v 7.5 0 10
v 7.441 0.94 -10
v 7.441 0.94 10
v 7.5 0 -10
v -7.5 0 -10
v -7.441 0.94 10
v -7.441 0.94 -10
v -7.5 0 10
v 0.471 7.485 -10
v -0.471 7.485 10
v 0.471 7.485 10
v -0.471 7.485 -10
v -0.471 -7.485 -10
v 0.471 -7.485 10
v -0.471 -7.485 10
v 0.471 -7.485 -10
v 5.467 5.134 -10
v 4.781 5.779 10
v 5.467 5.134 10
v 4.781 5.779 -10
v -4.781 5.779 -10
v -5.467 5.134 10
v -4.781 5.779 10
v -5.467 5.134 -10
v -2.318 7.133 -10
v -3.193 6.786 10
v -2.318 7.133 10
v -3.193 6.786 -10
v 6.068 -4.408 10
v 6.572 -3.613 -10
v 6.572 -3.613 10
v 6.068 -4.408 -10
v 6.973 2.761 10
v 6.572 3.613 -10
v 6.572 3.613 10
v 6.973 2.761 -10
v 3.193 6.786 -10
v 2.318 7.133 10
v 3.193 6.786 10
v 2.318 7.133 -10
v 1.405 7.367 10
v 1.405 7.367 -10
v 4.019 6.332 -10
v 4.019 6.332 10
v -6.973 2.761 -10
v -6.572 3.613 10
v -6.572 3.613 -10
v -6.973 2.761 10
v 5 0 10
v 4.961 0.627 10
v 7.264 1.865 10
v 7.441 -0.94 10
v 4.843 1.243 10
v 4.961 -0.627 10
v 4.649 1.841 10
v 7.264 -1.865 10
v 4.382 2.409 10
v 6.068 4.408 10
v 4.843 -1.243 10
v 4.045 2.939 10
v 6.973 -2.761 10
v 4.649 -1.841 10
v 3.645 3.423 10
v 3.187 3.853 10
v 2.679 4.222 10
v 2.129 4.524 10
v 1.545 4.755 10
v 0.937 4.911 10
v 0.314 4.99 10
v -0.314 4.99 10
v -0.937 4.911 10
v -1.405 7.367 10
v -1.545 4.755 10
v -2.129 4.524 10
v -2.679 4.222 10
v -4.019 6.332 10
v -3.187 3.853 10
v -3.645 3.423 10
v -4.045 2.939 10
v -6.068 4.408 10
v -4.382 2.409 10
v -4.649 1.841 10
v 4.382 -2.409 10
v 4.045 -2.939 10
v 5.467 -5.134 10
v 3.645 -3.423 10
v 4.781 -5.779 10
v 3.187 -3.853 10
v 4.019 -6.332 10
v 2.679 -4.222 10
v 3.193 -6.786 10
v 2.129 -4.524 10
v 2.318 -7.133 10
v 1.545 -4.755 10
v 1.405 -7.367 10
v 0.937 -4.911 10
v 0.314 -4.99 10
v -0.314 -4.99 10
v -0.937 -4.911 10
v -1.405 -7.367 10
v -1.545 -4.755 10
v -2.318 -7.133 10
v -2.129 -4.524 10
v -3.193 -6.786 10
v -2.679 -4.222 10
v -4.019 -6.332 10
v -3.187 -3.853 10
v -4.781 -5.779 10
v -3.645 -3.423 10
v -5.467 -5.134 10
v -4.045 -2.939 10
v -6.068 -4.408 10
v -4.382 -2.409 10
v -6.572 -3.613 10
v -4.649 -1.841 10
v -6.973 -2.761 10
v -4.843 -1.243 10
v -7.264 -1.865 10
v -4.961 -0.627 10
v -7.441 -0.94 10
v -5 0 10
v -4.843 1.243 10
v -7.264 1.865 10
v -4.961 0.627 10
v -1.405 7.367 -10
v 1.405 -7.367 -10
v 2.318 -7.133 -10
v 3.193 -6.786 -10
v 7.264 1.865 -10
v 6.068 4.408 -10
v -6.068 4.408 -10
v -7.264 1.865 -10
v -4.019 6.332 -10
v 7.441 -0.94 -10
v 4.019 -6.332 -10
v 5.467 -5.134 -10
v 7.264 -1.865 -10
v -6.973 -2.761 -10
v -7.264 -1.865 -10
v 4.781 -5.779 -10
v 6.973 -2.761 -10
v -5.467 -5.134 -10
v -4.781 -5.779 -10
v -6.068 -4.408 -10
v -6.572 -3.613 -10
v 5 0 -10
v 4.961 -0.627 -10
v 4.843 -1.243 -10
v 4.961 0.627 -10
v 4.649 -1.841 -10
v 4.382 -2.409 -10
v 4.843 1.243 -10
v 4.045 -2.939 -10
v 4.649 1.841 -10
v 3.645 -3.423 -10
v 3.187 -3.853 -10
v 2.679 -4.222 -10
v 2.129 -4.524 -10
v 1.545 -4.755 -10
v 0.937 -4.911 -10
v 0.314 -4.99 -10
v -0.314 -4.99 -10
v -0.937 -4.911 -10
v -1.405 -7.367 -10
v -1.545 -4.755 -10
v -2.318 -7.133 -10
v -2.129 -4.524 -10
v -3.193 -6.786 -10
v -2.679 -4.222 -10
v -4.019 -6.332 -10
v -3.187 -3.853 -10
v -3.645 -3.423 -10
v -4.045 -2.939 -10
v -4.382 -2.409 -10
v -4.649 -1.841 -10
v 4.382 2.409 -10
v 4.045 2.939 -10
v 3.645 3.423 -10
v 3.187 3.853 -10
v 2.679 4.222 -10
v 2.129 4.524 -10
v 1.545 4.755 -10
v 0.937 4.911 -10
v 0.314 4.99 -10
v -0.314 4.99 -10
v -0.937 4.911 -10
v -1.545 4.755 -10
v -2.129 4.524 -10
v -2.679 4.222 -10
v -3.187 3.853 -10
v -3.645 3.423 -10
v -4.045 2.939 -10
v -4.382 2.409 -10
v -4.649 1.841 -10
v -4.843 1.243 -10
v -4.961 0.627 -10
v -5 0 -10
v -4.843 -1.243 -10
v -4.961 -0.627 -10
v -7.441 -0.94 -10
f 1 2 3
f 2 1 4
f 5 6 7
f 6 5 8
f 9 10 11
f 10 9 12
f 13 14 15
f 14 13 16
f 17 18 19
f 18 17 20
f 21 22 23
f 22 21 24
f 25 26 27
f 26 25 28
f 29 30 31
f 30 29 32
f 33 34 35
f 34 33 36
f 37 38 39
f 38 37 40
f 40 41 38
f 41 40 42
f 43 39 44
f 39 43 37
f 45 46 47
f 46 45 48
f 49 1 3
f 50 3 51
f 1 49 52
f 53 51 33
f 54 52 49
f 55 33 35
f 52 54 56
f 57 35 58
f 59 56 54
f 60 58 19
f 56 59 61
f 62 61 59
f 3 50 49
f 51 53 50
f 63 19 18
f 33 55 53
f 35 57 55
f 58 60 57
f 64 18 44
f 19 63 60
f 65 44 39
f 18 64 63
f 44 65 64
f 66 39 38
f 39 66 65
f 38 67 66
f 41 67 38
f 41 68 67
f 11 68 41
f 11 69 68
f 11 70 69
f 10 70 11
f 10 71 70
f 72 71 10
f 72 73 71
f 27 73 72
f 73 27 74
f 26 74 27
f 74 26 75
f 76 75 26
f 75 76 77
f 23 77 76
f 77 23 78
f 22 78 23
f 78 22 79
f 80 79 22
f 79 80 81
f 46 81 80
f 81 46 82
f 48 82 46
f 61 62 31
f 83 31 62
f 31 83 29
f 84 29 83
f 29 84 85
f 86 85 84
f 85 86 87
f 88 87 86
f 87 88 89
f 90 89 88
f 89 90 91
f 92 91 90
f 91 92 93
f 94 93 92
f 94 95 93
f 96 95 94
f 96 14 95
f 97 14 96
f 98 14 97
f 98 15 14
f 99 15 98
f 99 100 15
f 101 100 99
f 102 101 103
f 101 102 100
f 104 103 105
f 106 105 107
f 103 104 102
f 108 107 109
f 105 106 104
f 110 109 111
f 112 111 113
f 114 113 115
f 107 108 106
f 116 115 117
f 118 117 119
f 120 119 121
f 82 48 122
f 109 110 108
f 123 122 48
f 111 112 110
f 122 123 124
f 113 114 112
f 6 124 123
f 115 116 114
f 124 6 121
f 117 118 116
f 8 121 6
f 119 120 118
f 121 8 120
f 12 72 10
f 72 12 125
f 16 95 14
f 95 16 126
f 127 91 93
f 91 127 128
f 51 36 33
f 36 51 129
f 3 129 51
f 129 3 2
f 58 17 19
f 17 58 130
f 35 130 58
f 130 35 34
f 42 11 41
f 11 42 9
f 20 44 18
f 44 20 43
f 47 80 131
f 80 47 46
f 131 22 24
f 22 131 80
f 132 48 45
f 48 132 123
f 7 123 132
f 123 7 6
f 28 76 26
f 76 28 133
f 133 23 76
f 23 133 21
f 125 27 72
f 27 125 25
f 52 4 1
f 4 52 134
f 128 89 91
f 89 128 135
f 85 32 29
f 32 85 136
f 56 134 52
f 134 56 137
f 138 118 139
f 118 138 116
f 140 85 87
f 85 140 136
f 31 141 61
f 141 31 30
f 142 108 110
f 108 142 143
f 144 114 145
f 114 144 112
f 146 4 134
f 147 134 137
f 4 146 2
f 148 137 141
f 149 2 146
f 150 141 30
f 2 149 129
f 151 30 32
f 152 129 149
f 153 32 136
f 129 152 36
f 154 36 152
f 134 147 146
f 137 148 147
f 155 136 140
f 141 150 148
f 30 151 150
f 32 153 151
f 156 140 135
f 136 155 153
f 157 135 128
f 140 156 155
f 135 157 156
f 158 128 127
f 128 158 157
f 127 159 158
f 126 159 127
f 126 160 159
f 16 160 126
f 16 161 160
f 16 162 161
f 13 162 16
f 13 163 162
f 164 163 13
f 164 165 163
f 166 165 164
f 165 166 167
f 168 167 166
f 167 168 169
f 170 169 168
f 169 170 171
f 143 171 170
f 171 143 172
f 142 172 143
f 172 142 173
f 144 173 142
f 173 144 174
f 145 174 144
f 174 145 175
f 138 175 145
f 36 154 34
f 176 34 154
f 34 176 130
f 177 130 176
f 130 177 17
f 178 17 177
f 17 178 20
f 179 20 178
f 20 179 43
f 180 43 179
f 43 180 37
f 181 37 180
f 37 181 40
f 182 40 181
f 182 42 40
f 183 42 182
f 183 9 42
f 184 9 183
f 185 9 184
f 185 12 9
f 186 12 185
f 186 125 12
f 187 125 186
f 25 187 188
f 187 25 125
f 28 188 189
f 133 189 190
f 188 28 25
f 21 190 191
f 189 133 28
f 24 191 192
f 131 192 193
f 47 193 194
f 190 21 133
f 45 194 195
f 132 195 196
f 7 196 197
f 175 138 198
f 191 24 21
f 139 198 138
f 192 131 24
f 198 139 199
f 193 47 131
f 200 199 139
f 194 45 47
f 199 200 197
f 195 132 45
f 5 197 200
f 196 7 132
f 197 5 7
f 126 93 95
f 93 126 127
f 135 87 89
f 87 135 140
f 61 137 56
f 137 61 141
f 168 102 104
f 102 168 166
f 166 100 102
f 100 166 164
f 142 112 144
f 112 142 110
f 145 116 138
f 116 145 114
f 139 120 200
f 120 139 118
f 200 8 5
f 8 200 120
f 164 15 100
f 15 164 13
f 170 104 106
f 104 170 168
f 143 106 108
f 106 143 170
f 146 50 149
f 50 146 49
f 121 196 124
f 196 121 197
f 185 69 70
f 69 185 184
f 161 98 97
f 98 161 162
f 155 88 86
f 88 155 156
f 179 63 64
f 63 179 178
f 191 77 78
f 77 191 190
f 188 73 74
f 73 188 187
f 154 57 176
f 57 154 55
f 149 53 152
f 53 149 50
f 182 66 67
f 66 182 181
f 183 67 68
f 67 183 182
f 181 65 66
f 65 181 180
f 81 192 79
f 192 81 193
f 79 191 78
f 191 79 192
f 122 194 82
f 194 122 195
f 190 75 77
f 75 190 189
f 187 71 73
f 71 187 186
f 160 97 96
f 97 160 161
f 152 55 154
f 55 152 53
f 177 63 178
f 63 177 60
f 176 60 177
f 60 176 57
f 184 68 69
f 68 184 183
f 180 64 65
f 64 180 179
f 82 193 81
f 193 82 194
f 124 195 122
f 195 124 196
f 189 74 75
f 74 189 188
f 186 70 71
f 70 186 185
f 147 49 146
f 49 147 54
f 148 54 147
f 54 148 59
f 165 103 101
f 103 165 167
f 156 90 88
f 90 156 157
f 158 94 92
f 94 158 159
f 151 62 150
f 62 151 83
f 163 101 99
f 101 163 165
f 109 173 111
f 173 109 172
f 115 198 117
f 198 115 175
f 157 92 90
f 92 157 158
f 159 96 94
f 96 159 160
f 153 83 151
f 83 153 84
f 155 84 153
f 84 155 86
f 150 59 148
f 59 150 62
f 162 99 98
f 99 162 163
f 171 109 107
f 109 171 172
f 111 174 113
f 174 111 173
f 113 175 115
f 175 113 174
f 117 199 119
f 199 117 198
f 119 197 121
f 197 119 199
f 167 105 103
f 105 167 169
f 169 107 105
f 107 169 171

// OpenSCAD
$fn = 50;


difference() {
	union() {
		translate(v = [0, 0, -10.0000000000]) {
			cylinder(h = 20, r = 7.5000000000);
		}
	}
	union() {
		translate(v = [0, 0, -100.0000000000]) {
			cylinder(h = 200, r = 5);
		}
	}
}
